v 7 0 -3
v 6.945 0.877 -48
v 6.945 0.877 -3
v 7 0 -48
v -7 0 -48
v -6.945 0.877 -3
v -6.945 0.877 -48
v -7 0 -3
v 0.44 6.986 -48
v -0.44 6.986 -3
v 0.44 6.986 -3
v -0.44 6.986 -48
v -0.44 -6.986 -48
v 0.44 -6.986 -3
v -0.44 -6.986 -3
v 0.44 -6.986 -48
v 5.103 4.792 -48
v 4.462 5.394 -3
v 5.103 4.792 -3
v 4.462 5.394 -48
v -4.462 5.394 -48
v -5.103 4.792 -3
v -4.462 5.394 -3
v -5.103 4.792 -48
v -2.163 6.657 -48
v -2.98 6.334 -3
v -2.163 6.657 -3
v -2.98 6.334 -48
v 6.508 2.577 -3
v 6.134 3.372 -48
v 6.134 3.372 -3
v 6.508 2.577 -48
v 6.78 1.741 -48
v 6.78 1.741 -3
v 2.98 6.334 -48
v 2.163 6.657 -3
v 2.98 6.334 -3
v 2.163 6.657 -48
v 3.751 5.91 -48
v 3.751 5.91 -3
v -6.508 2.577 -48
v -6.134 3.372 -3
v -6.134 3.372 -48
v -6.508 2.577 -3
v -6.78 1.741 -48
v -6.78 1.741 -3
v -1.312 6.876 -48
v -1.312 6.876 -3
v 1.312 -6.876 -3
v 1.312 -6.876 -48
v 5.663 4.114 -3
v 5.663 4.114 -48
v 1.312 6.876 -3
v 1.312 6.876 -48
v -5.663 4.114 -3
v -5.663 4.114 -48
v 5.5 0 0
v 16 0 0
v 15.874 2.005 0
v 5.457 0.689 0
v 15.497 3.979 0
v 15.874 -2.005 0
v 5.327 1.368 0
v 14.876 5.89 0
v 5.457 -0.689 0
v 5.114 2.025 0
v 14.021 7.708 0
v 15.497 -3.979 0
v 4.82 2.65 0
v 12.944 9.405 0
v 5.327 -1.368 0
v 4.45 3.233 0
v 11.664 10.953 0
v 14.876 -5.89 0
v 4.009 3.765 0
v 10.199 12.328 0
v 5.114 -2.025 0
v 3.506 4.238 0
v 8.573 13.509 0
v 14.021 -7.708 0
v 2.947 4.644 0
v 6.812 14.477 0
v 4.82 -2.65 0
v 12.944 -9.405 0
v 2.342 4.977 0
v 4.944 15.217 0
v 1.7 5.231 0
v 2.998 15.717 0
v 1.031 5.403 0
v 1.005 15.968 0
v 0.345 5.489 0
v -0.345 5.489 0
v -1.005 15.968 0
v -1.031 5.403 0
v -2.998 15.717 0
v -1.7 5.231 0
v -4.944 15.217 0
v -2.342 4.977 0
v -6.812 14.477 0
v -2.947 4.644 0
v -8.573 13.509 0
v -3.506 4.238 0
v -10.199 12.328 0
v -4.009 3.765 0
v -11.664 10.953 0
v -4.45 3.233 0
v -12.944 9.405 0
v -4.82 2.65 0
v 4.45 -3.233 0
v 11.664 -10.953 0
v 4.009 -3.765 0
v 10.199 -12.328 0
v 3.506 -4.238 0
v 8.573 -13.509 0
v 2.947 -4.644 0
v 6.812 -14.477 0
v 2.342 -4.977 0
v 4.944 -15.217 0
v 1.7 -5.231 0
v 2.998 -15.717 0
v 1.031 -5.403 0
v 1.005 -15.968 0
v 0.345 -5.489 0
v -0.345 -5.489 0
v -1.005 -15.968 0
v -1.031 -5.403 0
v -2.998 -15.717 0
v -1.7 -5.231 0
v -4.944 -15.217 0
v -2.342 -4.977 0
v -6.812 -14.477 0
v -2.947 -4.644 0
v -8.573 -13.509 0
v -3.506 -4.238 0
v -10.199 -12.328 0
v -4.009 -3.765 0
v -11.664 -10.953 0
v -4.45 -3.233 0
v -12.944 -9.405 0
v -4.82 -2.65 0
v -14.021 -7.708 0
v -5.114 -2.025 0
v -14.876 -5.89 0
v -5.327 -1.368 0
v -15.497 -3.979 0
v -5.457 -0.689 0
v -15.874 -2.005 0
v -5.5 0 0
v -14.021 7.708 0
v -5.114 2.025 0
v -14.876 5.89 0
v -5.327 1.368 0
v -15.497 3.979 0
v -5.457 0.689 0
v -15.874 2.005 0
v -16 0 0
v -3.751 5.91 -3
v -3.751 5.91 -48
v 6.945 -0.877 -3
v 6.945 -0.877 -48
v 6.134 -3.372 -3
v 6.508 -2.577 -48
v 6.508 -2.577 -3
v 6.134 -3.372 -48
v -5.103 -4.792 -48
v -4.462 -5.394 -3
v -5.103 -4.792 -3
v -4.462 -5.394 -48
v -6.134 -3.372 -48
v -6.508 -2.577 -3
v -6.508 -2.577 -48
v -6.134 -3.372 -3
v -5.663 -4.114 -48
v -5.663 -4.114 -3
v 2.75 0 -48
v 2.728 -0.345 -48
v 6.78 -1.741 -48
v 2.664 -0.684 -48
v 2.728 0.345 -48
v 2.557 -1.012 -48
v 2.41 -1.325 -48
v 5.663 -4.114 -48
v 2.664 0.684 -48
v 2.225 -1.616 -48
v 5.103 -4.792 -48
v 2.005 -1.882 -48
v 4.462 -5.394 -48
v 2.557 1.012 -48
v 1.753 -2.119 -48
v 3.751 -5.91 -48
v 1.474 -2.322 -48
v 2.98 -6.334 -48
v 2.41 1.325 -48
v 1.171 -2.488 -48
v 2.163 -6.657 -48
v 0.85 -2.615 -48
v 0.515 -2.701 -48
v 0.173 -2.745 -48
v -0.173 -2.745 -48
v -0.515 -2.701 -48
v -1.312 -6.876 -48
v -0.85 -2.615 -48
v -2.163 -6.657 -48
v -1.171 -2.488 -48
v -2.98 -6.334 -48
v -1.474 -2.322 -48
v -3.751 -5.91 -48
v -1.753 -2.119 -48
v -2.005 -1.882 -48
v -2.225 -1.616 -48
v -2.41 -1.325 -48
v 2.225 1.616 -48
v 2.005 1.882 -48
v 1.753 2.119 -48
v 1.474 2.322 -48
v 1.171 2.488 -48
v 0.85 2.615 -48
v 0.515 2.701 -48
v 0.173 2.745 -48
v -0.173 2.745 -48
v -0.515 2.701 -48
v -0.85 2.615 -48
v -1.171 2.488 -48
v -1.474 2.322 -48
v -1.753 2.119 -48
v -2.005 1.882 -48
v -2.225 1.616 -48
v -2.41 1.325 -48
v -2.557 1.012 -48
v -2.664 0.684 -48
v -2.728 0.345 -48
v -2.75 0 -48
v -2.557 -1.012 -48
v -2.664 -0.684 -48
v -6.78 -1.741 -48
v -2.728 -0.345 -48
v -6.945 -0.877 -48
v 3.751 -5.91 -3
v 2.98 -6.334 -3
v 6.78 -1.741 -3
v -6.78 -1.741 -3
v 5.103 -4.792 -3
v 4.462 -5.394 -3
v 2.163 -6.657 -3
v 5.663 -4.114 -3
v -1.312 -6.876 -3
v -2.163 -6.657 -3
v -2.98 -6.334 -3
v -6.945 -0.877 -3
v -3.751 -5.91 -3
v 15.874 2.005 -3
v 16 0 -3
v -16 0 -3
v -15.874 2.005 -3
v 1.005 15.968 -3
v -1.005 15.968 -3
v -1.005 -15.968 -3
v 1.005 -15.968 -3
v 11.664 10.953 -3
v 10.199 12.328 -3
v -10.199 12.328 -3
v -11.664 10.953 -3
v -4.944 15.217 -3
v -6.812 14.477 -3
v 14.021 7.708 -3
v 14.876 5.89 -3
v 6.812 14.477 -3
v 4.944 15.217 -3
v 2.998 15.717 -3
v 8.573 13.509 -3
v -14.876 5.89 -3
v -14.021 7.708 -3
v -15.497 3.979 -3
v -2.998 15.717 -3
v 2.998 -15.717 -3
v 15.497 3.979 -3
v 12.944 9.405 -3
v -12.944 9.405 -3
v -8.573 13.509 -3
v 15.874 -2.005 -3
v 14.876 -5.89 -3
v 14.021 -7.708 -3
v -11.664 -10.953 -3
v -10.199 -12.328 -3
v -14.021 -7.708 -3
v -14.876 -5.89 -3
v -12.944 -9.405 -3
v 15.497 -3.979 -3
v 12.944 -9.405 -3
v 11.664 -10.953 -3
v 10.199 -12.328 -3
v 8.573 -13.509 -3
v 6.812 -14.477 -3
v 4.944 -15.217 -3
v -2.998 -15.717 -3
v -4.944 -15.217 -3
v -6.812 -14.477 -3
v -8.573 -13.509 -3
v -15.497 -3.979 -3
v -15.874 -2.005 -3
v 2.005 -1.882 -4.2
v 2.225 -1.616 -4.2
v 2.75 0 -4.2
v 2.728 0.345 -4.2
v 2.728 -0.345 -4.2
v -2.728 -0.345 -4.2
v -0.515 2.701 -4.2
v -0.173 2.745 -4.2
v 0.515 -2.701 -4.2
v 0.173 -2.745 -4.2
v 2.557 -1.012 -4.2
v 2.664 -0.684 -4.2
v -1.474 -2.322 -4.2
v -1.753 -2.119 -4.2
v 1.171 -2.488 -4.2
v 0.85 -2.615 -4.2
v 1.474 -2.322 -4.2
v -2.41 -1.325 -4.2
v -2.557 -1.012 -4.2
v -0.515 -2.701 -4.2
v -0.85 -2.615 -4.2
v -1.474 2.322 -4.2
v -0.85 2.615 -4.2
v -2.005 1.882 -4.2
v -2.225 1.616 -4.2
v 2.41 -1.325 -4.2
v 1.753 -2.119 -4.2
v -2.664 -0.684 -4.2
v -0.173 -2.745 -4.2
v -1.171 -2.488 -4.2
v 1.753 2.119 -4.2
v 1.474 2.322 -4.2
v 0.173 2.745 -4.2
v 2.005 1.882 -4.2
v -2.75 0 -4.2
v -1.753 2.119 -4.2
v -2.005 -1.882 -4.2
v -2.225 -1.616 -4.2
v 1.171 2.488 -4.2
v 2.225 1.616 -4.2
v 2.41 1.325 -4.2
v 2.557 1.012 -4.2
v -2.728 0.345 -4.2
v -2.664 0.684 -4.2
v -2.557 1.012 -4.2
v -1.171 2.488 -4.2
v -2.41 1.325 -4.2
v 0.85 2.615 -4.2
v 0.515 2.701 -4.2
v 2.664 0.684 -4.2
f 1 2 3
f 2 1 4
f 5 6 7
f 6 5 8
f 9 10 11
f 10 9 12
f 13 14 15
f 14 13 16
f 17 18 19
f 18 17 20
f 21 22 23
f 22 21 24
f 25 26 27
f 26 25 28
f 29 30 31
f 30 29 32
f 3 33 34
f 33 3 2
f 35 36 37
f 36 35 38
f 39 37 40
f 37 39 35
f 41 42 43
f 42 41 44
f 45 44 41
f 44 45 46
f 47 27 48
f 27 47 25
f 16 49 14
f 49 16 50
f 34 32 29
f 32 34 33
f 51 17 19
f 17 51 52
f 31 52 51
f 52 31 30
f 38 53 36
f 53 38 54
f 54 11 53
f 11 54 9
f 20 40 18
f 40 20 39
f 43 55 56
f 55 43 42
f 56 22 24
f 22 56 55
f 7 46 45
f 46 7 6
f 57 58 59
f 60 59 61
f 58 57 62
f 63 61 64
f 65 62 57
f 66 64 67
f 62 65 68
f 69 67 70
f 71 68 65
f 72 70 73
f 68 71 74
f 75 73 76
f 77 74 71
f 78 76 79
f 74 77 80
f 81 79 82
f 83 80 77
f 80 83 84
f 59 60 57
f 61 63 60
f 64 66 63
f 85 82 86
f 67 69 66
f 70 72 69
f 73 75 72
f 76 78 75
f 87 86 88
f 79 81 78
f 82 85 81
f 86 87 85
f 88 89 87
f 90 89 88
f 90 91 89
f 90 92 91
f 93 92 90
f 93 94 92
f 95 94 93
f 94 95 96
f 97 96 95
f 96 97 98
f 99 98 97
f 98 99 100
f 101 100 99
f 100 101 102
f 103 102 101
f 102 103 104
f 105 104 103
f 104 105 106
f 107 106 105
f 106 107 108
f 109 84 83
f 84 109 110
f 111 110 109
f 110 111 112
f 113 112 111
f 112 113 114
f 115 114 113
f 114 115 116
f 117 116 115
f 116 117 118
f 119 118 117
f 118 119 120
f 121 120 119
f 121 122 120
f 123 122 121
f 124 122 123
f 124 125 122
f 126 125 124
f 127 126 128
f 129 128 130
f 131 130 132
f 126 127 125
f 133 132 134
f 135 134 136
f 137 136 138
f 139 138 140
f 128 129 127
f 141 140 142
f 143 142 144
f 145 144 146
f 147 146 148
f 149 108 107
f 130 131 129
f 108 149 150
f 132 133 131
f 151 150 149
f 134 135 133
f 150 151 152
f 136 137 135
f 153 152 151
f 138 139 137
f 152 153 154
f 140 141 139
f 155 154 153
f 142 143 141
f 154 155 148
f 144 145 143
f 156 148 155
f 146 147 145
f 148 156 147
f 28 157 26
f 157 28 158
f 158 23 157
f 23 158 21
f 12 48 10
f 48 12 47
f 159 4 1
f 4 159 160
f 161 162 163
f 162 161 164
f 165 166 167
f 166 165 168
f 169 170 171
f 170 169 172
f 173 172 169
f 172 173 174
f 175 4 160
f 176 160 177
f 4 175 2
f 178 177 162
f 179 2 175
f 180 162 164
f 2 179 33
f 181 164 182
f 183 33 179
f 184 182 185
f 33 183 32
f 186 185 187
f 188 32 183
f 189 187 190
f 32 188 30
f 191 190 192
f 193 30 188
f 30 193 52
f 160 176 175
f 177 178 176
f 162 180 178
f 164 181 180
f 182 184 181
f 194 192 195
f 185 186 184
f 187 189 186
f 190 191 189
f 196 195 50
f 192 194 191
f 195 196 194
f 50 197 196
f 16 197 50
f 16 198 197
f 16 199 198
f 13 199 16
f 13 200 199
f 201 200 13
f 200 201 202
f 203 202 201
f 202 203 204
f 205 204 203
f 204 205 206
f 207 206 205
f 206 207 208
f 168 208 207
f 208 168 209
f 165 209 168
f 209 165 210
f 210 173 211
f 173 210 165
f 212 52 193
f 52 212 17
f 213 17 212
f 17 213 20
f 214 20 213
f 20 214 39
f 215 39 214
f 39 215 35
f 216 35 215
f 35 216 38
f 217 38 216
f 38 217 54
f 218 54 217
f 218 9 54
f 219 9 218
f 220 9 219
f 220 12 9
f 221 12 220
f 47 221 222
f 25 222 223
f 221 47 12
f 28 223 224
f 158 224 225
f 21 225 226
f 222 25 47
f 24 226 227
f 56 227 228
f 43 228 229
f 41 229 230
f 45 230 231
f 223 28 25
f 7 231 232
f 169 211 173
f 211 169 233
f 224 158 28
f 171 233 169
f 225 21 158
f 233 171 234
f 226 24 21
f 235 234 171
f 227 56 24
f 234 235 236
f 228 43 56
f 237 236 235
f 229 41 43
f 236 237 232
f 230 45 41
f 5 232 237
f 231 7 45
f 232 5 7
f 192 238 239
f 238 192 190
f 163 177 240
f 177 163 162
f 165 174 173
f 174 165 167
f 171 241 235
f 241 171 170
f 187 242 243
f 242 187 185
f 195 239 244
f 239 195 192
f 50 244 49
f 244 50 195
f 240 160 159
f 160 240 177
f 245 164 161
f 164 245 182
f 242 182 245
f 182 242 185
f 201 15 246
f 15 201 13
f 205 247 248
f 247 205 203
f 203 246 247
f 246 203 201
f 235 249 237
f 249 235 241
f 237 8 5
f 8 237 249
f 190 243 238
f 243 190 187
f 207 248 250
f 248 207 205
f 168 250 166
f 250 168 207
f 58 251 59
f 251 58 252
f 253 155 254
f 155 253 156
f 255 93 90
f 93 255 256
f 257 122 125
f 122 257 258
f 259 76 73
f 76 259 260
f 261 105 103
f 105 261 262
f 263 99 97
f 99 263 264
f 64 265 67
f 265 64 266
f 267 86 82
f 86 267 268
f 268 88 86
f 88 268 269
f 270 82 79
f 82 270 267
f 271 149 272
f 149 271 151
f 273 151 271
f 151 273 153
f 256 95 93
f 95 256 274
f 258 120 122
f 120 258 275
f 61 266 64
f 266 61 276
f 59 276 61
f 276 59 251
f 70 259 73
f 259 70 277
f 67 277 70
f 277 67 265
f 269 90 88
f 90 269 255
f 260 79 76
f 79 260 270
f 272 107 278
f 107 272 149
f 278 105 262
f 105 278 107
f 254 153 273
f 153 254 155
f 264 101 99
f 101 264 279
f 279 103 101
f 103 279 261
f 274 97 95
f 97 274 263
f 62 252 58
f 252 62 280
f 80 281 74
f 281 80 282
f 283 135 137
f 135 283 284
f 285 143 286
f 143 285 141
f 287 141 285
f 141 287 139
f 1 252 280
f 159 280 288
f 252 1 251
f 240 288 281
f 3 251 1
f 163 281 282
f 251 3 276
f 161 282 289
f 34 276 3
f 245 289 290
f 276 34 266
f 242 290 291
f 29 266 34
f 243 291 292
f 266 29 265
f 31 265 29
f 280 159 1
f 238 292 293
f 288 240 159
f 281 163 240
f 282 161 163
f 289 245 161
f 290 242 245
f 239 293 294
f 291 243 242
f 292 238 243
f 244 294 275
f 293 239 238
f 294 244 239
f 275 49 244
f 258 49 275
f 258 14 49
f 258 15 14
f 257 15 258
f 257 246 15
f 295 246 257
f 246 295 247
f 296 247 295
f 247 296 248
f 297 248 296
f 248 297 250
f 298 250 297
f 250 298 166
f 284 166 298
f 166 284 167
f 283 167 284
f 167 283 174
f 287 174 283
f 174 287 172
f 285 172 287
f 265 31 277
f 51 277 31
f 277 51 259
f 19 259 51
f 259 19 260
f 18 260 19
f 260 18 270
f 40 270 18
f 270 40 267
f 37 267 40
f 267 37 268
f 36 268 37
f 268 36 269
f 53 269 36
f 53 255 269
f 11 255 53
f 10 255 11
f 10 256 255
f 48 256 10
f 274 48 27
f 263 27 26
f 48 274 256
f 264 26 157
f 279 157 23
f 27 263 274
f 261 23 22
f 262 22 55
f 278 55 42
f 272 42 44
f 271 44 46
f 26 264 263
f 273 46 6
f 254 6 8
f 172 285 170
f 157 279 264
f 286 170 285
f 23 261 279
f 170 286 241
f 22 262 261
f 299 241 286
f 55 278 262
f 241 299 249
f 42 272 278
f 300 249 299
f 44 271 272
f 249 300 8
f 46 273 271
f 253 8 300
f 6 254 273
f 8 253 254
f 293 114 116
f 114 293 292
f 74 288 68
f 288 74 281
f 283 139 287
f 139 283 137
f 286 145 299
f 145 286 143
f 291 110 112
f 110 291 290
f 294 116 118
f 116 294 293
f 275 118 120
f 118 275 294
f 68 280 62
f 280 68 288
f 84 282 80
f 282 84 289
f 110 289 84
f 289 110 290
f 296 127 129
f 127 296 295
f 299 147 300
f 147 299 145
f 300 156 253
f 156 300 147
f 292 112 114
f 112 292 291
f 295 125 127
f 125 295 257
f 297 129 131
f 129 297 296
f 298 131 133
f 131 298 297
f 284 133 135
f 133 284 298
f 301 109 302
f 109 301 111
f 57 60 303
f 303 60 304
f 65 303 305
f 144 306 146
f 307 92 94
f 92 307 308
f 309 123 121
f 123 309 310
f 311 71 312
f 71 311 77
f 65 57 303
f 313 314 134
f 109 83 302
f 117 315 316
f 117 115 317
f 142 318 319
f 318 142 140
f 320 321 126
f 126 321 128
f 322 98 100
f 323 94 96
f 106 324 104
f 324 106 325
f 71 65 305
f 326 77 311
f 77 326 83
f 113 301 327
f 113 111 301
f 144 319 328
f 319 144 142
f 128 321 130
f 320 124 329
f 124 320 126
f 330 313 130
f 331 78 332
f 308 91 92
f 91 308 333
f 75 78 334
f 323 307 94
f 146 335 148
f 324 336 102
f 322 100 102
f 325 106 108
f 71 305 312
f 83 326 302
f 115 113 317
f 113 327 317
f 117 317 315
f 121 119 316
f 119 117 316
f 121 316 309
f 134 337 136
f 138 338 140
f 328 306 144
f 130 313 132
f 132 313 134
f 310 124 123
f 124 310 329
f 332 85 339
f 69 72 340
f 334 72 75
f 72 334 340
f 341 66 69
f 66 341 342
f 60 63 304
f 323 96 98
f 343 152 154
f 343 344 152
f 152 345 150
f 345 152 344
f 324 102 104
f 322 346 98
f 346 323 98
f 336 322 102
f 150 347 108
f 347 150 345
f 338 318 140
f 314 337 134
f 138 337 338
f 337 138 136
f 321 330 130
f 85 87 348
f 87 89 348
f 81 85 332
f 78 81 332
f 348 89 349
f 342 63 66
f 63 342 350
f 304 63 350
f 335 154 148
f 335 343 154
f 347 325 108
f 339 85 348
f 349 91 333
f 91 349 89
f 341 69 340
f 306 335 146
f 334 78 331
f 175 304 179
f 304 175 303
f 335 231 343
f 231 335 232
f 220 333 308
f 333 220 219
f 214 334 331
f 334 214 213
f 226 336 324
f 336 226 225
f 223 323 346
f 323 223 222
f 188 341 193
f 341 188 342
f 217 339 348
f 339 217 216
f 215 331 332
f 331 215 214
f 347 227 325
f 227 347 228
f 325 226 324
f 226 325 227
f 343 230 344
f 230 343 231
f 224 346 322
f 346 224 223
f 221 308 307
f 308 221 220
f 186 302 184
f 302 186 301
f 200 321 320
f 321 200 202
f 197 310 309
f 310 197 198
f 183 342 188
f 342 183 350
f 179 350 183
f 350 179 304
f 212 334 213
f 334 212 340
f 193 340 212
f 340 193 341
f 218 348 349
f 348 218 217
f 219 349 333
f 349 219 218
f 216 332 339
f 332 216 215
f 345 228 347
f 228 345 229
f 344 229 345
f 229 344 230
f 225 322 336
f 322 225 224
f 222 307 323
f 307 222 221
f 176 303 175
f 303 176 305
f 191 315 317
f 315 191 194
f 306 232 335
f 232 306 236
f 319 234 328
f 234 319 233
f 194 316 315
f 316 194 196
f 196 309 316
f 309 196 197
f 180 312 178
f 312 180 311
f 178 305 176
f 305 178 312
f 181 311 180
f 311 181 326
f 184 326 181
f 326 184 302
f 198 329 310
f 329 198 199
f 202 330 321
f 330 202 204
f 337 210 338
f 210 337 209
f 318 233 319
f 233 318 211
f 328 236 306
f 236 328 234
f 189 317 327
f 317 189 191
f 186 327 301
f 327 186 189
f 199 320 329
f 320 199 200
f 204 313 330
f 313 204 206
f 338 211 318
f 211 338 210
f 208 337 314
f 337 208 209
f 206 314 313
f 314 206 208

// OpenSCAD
$fn = 50;


difference() {
	union() {
		translate(v = [0, 0, -48.0000000000]) {
			cylinder(h = 48, r = 7.0000000000);
		}
		translate(v = [0, 0, -3.0000000000]) {
			cylinder(h = 3, r = 16.0000000000);
		}
	}
	union() {
		translate(v = [0, 0, 0]) {
			rotate(a = [0, 0, 0]) {
				difference() {
					union() {
						#translate(v = [0, 0, -48.0000000000]) {
							cylinder(h = 48, r = 2.2500000000);
						}
						#translate(v = [0, 0, -4.2000000000]) {
							cylinder(h = 4.2000000000, r1 = 2.7500000000, r2 = 5.5000000000);
						}
						#translate(v = [0, 0, -48.0000000000]) {
							cylinder(h = 48, r = 2.7500000000);
						}
						#translate(v = [0, 0, -48.0000000000]) {
							cylinder(h = 48, r = 2.2500000000);
						}
					}
					union();
				}
			}
		}
	}
}
